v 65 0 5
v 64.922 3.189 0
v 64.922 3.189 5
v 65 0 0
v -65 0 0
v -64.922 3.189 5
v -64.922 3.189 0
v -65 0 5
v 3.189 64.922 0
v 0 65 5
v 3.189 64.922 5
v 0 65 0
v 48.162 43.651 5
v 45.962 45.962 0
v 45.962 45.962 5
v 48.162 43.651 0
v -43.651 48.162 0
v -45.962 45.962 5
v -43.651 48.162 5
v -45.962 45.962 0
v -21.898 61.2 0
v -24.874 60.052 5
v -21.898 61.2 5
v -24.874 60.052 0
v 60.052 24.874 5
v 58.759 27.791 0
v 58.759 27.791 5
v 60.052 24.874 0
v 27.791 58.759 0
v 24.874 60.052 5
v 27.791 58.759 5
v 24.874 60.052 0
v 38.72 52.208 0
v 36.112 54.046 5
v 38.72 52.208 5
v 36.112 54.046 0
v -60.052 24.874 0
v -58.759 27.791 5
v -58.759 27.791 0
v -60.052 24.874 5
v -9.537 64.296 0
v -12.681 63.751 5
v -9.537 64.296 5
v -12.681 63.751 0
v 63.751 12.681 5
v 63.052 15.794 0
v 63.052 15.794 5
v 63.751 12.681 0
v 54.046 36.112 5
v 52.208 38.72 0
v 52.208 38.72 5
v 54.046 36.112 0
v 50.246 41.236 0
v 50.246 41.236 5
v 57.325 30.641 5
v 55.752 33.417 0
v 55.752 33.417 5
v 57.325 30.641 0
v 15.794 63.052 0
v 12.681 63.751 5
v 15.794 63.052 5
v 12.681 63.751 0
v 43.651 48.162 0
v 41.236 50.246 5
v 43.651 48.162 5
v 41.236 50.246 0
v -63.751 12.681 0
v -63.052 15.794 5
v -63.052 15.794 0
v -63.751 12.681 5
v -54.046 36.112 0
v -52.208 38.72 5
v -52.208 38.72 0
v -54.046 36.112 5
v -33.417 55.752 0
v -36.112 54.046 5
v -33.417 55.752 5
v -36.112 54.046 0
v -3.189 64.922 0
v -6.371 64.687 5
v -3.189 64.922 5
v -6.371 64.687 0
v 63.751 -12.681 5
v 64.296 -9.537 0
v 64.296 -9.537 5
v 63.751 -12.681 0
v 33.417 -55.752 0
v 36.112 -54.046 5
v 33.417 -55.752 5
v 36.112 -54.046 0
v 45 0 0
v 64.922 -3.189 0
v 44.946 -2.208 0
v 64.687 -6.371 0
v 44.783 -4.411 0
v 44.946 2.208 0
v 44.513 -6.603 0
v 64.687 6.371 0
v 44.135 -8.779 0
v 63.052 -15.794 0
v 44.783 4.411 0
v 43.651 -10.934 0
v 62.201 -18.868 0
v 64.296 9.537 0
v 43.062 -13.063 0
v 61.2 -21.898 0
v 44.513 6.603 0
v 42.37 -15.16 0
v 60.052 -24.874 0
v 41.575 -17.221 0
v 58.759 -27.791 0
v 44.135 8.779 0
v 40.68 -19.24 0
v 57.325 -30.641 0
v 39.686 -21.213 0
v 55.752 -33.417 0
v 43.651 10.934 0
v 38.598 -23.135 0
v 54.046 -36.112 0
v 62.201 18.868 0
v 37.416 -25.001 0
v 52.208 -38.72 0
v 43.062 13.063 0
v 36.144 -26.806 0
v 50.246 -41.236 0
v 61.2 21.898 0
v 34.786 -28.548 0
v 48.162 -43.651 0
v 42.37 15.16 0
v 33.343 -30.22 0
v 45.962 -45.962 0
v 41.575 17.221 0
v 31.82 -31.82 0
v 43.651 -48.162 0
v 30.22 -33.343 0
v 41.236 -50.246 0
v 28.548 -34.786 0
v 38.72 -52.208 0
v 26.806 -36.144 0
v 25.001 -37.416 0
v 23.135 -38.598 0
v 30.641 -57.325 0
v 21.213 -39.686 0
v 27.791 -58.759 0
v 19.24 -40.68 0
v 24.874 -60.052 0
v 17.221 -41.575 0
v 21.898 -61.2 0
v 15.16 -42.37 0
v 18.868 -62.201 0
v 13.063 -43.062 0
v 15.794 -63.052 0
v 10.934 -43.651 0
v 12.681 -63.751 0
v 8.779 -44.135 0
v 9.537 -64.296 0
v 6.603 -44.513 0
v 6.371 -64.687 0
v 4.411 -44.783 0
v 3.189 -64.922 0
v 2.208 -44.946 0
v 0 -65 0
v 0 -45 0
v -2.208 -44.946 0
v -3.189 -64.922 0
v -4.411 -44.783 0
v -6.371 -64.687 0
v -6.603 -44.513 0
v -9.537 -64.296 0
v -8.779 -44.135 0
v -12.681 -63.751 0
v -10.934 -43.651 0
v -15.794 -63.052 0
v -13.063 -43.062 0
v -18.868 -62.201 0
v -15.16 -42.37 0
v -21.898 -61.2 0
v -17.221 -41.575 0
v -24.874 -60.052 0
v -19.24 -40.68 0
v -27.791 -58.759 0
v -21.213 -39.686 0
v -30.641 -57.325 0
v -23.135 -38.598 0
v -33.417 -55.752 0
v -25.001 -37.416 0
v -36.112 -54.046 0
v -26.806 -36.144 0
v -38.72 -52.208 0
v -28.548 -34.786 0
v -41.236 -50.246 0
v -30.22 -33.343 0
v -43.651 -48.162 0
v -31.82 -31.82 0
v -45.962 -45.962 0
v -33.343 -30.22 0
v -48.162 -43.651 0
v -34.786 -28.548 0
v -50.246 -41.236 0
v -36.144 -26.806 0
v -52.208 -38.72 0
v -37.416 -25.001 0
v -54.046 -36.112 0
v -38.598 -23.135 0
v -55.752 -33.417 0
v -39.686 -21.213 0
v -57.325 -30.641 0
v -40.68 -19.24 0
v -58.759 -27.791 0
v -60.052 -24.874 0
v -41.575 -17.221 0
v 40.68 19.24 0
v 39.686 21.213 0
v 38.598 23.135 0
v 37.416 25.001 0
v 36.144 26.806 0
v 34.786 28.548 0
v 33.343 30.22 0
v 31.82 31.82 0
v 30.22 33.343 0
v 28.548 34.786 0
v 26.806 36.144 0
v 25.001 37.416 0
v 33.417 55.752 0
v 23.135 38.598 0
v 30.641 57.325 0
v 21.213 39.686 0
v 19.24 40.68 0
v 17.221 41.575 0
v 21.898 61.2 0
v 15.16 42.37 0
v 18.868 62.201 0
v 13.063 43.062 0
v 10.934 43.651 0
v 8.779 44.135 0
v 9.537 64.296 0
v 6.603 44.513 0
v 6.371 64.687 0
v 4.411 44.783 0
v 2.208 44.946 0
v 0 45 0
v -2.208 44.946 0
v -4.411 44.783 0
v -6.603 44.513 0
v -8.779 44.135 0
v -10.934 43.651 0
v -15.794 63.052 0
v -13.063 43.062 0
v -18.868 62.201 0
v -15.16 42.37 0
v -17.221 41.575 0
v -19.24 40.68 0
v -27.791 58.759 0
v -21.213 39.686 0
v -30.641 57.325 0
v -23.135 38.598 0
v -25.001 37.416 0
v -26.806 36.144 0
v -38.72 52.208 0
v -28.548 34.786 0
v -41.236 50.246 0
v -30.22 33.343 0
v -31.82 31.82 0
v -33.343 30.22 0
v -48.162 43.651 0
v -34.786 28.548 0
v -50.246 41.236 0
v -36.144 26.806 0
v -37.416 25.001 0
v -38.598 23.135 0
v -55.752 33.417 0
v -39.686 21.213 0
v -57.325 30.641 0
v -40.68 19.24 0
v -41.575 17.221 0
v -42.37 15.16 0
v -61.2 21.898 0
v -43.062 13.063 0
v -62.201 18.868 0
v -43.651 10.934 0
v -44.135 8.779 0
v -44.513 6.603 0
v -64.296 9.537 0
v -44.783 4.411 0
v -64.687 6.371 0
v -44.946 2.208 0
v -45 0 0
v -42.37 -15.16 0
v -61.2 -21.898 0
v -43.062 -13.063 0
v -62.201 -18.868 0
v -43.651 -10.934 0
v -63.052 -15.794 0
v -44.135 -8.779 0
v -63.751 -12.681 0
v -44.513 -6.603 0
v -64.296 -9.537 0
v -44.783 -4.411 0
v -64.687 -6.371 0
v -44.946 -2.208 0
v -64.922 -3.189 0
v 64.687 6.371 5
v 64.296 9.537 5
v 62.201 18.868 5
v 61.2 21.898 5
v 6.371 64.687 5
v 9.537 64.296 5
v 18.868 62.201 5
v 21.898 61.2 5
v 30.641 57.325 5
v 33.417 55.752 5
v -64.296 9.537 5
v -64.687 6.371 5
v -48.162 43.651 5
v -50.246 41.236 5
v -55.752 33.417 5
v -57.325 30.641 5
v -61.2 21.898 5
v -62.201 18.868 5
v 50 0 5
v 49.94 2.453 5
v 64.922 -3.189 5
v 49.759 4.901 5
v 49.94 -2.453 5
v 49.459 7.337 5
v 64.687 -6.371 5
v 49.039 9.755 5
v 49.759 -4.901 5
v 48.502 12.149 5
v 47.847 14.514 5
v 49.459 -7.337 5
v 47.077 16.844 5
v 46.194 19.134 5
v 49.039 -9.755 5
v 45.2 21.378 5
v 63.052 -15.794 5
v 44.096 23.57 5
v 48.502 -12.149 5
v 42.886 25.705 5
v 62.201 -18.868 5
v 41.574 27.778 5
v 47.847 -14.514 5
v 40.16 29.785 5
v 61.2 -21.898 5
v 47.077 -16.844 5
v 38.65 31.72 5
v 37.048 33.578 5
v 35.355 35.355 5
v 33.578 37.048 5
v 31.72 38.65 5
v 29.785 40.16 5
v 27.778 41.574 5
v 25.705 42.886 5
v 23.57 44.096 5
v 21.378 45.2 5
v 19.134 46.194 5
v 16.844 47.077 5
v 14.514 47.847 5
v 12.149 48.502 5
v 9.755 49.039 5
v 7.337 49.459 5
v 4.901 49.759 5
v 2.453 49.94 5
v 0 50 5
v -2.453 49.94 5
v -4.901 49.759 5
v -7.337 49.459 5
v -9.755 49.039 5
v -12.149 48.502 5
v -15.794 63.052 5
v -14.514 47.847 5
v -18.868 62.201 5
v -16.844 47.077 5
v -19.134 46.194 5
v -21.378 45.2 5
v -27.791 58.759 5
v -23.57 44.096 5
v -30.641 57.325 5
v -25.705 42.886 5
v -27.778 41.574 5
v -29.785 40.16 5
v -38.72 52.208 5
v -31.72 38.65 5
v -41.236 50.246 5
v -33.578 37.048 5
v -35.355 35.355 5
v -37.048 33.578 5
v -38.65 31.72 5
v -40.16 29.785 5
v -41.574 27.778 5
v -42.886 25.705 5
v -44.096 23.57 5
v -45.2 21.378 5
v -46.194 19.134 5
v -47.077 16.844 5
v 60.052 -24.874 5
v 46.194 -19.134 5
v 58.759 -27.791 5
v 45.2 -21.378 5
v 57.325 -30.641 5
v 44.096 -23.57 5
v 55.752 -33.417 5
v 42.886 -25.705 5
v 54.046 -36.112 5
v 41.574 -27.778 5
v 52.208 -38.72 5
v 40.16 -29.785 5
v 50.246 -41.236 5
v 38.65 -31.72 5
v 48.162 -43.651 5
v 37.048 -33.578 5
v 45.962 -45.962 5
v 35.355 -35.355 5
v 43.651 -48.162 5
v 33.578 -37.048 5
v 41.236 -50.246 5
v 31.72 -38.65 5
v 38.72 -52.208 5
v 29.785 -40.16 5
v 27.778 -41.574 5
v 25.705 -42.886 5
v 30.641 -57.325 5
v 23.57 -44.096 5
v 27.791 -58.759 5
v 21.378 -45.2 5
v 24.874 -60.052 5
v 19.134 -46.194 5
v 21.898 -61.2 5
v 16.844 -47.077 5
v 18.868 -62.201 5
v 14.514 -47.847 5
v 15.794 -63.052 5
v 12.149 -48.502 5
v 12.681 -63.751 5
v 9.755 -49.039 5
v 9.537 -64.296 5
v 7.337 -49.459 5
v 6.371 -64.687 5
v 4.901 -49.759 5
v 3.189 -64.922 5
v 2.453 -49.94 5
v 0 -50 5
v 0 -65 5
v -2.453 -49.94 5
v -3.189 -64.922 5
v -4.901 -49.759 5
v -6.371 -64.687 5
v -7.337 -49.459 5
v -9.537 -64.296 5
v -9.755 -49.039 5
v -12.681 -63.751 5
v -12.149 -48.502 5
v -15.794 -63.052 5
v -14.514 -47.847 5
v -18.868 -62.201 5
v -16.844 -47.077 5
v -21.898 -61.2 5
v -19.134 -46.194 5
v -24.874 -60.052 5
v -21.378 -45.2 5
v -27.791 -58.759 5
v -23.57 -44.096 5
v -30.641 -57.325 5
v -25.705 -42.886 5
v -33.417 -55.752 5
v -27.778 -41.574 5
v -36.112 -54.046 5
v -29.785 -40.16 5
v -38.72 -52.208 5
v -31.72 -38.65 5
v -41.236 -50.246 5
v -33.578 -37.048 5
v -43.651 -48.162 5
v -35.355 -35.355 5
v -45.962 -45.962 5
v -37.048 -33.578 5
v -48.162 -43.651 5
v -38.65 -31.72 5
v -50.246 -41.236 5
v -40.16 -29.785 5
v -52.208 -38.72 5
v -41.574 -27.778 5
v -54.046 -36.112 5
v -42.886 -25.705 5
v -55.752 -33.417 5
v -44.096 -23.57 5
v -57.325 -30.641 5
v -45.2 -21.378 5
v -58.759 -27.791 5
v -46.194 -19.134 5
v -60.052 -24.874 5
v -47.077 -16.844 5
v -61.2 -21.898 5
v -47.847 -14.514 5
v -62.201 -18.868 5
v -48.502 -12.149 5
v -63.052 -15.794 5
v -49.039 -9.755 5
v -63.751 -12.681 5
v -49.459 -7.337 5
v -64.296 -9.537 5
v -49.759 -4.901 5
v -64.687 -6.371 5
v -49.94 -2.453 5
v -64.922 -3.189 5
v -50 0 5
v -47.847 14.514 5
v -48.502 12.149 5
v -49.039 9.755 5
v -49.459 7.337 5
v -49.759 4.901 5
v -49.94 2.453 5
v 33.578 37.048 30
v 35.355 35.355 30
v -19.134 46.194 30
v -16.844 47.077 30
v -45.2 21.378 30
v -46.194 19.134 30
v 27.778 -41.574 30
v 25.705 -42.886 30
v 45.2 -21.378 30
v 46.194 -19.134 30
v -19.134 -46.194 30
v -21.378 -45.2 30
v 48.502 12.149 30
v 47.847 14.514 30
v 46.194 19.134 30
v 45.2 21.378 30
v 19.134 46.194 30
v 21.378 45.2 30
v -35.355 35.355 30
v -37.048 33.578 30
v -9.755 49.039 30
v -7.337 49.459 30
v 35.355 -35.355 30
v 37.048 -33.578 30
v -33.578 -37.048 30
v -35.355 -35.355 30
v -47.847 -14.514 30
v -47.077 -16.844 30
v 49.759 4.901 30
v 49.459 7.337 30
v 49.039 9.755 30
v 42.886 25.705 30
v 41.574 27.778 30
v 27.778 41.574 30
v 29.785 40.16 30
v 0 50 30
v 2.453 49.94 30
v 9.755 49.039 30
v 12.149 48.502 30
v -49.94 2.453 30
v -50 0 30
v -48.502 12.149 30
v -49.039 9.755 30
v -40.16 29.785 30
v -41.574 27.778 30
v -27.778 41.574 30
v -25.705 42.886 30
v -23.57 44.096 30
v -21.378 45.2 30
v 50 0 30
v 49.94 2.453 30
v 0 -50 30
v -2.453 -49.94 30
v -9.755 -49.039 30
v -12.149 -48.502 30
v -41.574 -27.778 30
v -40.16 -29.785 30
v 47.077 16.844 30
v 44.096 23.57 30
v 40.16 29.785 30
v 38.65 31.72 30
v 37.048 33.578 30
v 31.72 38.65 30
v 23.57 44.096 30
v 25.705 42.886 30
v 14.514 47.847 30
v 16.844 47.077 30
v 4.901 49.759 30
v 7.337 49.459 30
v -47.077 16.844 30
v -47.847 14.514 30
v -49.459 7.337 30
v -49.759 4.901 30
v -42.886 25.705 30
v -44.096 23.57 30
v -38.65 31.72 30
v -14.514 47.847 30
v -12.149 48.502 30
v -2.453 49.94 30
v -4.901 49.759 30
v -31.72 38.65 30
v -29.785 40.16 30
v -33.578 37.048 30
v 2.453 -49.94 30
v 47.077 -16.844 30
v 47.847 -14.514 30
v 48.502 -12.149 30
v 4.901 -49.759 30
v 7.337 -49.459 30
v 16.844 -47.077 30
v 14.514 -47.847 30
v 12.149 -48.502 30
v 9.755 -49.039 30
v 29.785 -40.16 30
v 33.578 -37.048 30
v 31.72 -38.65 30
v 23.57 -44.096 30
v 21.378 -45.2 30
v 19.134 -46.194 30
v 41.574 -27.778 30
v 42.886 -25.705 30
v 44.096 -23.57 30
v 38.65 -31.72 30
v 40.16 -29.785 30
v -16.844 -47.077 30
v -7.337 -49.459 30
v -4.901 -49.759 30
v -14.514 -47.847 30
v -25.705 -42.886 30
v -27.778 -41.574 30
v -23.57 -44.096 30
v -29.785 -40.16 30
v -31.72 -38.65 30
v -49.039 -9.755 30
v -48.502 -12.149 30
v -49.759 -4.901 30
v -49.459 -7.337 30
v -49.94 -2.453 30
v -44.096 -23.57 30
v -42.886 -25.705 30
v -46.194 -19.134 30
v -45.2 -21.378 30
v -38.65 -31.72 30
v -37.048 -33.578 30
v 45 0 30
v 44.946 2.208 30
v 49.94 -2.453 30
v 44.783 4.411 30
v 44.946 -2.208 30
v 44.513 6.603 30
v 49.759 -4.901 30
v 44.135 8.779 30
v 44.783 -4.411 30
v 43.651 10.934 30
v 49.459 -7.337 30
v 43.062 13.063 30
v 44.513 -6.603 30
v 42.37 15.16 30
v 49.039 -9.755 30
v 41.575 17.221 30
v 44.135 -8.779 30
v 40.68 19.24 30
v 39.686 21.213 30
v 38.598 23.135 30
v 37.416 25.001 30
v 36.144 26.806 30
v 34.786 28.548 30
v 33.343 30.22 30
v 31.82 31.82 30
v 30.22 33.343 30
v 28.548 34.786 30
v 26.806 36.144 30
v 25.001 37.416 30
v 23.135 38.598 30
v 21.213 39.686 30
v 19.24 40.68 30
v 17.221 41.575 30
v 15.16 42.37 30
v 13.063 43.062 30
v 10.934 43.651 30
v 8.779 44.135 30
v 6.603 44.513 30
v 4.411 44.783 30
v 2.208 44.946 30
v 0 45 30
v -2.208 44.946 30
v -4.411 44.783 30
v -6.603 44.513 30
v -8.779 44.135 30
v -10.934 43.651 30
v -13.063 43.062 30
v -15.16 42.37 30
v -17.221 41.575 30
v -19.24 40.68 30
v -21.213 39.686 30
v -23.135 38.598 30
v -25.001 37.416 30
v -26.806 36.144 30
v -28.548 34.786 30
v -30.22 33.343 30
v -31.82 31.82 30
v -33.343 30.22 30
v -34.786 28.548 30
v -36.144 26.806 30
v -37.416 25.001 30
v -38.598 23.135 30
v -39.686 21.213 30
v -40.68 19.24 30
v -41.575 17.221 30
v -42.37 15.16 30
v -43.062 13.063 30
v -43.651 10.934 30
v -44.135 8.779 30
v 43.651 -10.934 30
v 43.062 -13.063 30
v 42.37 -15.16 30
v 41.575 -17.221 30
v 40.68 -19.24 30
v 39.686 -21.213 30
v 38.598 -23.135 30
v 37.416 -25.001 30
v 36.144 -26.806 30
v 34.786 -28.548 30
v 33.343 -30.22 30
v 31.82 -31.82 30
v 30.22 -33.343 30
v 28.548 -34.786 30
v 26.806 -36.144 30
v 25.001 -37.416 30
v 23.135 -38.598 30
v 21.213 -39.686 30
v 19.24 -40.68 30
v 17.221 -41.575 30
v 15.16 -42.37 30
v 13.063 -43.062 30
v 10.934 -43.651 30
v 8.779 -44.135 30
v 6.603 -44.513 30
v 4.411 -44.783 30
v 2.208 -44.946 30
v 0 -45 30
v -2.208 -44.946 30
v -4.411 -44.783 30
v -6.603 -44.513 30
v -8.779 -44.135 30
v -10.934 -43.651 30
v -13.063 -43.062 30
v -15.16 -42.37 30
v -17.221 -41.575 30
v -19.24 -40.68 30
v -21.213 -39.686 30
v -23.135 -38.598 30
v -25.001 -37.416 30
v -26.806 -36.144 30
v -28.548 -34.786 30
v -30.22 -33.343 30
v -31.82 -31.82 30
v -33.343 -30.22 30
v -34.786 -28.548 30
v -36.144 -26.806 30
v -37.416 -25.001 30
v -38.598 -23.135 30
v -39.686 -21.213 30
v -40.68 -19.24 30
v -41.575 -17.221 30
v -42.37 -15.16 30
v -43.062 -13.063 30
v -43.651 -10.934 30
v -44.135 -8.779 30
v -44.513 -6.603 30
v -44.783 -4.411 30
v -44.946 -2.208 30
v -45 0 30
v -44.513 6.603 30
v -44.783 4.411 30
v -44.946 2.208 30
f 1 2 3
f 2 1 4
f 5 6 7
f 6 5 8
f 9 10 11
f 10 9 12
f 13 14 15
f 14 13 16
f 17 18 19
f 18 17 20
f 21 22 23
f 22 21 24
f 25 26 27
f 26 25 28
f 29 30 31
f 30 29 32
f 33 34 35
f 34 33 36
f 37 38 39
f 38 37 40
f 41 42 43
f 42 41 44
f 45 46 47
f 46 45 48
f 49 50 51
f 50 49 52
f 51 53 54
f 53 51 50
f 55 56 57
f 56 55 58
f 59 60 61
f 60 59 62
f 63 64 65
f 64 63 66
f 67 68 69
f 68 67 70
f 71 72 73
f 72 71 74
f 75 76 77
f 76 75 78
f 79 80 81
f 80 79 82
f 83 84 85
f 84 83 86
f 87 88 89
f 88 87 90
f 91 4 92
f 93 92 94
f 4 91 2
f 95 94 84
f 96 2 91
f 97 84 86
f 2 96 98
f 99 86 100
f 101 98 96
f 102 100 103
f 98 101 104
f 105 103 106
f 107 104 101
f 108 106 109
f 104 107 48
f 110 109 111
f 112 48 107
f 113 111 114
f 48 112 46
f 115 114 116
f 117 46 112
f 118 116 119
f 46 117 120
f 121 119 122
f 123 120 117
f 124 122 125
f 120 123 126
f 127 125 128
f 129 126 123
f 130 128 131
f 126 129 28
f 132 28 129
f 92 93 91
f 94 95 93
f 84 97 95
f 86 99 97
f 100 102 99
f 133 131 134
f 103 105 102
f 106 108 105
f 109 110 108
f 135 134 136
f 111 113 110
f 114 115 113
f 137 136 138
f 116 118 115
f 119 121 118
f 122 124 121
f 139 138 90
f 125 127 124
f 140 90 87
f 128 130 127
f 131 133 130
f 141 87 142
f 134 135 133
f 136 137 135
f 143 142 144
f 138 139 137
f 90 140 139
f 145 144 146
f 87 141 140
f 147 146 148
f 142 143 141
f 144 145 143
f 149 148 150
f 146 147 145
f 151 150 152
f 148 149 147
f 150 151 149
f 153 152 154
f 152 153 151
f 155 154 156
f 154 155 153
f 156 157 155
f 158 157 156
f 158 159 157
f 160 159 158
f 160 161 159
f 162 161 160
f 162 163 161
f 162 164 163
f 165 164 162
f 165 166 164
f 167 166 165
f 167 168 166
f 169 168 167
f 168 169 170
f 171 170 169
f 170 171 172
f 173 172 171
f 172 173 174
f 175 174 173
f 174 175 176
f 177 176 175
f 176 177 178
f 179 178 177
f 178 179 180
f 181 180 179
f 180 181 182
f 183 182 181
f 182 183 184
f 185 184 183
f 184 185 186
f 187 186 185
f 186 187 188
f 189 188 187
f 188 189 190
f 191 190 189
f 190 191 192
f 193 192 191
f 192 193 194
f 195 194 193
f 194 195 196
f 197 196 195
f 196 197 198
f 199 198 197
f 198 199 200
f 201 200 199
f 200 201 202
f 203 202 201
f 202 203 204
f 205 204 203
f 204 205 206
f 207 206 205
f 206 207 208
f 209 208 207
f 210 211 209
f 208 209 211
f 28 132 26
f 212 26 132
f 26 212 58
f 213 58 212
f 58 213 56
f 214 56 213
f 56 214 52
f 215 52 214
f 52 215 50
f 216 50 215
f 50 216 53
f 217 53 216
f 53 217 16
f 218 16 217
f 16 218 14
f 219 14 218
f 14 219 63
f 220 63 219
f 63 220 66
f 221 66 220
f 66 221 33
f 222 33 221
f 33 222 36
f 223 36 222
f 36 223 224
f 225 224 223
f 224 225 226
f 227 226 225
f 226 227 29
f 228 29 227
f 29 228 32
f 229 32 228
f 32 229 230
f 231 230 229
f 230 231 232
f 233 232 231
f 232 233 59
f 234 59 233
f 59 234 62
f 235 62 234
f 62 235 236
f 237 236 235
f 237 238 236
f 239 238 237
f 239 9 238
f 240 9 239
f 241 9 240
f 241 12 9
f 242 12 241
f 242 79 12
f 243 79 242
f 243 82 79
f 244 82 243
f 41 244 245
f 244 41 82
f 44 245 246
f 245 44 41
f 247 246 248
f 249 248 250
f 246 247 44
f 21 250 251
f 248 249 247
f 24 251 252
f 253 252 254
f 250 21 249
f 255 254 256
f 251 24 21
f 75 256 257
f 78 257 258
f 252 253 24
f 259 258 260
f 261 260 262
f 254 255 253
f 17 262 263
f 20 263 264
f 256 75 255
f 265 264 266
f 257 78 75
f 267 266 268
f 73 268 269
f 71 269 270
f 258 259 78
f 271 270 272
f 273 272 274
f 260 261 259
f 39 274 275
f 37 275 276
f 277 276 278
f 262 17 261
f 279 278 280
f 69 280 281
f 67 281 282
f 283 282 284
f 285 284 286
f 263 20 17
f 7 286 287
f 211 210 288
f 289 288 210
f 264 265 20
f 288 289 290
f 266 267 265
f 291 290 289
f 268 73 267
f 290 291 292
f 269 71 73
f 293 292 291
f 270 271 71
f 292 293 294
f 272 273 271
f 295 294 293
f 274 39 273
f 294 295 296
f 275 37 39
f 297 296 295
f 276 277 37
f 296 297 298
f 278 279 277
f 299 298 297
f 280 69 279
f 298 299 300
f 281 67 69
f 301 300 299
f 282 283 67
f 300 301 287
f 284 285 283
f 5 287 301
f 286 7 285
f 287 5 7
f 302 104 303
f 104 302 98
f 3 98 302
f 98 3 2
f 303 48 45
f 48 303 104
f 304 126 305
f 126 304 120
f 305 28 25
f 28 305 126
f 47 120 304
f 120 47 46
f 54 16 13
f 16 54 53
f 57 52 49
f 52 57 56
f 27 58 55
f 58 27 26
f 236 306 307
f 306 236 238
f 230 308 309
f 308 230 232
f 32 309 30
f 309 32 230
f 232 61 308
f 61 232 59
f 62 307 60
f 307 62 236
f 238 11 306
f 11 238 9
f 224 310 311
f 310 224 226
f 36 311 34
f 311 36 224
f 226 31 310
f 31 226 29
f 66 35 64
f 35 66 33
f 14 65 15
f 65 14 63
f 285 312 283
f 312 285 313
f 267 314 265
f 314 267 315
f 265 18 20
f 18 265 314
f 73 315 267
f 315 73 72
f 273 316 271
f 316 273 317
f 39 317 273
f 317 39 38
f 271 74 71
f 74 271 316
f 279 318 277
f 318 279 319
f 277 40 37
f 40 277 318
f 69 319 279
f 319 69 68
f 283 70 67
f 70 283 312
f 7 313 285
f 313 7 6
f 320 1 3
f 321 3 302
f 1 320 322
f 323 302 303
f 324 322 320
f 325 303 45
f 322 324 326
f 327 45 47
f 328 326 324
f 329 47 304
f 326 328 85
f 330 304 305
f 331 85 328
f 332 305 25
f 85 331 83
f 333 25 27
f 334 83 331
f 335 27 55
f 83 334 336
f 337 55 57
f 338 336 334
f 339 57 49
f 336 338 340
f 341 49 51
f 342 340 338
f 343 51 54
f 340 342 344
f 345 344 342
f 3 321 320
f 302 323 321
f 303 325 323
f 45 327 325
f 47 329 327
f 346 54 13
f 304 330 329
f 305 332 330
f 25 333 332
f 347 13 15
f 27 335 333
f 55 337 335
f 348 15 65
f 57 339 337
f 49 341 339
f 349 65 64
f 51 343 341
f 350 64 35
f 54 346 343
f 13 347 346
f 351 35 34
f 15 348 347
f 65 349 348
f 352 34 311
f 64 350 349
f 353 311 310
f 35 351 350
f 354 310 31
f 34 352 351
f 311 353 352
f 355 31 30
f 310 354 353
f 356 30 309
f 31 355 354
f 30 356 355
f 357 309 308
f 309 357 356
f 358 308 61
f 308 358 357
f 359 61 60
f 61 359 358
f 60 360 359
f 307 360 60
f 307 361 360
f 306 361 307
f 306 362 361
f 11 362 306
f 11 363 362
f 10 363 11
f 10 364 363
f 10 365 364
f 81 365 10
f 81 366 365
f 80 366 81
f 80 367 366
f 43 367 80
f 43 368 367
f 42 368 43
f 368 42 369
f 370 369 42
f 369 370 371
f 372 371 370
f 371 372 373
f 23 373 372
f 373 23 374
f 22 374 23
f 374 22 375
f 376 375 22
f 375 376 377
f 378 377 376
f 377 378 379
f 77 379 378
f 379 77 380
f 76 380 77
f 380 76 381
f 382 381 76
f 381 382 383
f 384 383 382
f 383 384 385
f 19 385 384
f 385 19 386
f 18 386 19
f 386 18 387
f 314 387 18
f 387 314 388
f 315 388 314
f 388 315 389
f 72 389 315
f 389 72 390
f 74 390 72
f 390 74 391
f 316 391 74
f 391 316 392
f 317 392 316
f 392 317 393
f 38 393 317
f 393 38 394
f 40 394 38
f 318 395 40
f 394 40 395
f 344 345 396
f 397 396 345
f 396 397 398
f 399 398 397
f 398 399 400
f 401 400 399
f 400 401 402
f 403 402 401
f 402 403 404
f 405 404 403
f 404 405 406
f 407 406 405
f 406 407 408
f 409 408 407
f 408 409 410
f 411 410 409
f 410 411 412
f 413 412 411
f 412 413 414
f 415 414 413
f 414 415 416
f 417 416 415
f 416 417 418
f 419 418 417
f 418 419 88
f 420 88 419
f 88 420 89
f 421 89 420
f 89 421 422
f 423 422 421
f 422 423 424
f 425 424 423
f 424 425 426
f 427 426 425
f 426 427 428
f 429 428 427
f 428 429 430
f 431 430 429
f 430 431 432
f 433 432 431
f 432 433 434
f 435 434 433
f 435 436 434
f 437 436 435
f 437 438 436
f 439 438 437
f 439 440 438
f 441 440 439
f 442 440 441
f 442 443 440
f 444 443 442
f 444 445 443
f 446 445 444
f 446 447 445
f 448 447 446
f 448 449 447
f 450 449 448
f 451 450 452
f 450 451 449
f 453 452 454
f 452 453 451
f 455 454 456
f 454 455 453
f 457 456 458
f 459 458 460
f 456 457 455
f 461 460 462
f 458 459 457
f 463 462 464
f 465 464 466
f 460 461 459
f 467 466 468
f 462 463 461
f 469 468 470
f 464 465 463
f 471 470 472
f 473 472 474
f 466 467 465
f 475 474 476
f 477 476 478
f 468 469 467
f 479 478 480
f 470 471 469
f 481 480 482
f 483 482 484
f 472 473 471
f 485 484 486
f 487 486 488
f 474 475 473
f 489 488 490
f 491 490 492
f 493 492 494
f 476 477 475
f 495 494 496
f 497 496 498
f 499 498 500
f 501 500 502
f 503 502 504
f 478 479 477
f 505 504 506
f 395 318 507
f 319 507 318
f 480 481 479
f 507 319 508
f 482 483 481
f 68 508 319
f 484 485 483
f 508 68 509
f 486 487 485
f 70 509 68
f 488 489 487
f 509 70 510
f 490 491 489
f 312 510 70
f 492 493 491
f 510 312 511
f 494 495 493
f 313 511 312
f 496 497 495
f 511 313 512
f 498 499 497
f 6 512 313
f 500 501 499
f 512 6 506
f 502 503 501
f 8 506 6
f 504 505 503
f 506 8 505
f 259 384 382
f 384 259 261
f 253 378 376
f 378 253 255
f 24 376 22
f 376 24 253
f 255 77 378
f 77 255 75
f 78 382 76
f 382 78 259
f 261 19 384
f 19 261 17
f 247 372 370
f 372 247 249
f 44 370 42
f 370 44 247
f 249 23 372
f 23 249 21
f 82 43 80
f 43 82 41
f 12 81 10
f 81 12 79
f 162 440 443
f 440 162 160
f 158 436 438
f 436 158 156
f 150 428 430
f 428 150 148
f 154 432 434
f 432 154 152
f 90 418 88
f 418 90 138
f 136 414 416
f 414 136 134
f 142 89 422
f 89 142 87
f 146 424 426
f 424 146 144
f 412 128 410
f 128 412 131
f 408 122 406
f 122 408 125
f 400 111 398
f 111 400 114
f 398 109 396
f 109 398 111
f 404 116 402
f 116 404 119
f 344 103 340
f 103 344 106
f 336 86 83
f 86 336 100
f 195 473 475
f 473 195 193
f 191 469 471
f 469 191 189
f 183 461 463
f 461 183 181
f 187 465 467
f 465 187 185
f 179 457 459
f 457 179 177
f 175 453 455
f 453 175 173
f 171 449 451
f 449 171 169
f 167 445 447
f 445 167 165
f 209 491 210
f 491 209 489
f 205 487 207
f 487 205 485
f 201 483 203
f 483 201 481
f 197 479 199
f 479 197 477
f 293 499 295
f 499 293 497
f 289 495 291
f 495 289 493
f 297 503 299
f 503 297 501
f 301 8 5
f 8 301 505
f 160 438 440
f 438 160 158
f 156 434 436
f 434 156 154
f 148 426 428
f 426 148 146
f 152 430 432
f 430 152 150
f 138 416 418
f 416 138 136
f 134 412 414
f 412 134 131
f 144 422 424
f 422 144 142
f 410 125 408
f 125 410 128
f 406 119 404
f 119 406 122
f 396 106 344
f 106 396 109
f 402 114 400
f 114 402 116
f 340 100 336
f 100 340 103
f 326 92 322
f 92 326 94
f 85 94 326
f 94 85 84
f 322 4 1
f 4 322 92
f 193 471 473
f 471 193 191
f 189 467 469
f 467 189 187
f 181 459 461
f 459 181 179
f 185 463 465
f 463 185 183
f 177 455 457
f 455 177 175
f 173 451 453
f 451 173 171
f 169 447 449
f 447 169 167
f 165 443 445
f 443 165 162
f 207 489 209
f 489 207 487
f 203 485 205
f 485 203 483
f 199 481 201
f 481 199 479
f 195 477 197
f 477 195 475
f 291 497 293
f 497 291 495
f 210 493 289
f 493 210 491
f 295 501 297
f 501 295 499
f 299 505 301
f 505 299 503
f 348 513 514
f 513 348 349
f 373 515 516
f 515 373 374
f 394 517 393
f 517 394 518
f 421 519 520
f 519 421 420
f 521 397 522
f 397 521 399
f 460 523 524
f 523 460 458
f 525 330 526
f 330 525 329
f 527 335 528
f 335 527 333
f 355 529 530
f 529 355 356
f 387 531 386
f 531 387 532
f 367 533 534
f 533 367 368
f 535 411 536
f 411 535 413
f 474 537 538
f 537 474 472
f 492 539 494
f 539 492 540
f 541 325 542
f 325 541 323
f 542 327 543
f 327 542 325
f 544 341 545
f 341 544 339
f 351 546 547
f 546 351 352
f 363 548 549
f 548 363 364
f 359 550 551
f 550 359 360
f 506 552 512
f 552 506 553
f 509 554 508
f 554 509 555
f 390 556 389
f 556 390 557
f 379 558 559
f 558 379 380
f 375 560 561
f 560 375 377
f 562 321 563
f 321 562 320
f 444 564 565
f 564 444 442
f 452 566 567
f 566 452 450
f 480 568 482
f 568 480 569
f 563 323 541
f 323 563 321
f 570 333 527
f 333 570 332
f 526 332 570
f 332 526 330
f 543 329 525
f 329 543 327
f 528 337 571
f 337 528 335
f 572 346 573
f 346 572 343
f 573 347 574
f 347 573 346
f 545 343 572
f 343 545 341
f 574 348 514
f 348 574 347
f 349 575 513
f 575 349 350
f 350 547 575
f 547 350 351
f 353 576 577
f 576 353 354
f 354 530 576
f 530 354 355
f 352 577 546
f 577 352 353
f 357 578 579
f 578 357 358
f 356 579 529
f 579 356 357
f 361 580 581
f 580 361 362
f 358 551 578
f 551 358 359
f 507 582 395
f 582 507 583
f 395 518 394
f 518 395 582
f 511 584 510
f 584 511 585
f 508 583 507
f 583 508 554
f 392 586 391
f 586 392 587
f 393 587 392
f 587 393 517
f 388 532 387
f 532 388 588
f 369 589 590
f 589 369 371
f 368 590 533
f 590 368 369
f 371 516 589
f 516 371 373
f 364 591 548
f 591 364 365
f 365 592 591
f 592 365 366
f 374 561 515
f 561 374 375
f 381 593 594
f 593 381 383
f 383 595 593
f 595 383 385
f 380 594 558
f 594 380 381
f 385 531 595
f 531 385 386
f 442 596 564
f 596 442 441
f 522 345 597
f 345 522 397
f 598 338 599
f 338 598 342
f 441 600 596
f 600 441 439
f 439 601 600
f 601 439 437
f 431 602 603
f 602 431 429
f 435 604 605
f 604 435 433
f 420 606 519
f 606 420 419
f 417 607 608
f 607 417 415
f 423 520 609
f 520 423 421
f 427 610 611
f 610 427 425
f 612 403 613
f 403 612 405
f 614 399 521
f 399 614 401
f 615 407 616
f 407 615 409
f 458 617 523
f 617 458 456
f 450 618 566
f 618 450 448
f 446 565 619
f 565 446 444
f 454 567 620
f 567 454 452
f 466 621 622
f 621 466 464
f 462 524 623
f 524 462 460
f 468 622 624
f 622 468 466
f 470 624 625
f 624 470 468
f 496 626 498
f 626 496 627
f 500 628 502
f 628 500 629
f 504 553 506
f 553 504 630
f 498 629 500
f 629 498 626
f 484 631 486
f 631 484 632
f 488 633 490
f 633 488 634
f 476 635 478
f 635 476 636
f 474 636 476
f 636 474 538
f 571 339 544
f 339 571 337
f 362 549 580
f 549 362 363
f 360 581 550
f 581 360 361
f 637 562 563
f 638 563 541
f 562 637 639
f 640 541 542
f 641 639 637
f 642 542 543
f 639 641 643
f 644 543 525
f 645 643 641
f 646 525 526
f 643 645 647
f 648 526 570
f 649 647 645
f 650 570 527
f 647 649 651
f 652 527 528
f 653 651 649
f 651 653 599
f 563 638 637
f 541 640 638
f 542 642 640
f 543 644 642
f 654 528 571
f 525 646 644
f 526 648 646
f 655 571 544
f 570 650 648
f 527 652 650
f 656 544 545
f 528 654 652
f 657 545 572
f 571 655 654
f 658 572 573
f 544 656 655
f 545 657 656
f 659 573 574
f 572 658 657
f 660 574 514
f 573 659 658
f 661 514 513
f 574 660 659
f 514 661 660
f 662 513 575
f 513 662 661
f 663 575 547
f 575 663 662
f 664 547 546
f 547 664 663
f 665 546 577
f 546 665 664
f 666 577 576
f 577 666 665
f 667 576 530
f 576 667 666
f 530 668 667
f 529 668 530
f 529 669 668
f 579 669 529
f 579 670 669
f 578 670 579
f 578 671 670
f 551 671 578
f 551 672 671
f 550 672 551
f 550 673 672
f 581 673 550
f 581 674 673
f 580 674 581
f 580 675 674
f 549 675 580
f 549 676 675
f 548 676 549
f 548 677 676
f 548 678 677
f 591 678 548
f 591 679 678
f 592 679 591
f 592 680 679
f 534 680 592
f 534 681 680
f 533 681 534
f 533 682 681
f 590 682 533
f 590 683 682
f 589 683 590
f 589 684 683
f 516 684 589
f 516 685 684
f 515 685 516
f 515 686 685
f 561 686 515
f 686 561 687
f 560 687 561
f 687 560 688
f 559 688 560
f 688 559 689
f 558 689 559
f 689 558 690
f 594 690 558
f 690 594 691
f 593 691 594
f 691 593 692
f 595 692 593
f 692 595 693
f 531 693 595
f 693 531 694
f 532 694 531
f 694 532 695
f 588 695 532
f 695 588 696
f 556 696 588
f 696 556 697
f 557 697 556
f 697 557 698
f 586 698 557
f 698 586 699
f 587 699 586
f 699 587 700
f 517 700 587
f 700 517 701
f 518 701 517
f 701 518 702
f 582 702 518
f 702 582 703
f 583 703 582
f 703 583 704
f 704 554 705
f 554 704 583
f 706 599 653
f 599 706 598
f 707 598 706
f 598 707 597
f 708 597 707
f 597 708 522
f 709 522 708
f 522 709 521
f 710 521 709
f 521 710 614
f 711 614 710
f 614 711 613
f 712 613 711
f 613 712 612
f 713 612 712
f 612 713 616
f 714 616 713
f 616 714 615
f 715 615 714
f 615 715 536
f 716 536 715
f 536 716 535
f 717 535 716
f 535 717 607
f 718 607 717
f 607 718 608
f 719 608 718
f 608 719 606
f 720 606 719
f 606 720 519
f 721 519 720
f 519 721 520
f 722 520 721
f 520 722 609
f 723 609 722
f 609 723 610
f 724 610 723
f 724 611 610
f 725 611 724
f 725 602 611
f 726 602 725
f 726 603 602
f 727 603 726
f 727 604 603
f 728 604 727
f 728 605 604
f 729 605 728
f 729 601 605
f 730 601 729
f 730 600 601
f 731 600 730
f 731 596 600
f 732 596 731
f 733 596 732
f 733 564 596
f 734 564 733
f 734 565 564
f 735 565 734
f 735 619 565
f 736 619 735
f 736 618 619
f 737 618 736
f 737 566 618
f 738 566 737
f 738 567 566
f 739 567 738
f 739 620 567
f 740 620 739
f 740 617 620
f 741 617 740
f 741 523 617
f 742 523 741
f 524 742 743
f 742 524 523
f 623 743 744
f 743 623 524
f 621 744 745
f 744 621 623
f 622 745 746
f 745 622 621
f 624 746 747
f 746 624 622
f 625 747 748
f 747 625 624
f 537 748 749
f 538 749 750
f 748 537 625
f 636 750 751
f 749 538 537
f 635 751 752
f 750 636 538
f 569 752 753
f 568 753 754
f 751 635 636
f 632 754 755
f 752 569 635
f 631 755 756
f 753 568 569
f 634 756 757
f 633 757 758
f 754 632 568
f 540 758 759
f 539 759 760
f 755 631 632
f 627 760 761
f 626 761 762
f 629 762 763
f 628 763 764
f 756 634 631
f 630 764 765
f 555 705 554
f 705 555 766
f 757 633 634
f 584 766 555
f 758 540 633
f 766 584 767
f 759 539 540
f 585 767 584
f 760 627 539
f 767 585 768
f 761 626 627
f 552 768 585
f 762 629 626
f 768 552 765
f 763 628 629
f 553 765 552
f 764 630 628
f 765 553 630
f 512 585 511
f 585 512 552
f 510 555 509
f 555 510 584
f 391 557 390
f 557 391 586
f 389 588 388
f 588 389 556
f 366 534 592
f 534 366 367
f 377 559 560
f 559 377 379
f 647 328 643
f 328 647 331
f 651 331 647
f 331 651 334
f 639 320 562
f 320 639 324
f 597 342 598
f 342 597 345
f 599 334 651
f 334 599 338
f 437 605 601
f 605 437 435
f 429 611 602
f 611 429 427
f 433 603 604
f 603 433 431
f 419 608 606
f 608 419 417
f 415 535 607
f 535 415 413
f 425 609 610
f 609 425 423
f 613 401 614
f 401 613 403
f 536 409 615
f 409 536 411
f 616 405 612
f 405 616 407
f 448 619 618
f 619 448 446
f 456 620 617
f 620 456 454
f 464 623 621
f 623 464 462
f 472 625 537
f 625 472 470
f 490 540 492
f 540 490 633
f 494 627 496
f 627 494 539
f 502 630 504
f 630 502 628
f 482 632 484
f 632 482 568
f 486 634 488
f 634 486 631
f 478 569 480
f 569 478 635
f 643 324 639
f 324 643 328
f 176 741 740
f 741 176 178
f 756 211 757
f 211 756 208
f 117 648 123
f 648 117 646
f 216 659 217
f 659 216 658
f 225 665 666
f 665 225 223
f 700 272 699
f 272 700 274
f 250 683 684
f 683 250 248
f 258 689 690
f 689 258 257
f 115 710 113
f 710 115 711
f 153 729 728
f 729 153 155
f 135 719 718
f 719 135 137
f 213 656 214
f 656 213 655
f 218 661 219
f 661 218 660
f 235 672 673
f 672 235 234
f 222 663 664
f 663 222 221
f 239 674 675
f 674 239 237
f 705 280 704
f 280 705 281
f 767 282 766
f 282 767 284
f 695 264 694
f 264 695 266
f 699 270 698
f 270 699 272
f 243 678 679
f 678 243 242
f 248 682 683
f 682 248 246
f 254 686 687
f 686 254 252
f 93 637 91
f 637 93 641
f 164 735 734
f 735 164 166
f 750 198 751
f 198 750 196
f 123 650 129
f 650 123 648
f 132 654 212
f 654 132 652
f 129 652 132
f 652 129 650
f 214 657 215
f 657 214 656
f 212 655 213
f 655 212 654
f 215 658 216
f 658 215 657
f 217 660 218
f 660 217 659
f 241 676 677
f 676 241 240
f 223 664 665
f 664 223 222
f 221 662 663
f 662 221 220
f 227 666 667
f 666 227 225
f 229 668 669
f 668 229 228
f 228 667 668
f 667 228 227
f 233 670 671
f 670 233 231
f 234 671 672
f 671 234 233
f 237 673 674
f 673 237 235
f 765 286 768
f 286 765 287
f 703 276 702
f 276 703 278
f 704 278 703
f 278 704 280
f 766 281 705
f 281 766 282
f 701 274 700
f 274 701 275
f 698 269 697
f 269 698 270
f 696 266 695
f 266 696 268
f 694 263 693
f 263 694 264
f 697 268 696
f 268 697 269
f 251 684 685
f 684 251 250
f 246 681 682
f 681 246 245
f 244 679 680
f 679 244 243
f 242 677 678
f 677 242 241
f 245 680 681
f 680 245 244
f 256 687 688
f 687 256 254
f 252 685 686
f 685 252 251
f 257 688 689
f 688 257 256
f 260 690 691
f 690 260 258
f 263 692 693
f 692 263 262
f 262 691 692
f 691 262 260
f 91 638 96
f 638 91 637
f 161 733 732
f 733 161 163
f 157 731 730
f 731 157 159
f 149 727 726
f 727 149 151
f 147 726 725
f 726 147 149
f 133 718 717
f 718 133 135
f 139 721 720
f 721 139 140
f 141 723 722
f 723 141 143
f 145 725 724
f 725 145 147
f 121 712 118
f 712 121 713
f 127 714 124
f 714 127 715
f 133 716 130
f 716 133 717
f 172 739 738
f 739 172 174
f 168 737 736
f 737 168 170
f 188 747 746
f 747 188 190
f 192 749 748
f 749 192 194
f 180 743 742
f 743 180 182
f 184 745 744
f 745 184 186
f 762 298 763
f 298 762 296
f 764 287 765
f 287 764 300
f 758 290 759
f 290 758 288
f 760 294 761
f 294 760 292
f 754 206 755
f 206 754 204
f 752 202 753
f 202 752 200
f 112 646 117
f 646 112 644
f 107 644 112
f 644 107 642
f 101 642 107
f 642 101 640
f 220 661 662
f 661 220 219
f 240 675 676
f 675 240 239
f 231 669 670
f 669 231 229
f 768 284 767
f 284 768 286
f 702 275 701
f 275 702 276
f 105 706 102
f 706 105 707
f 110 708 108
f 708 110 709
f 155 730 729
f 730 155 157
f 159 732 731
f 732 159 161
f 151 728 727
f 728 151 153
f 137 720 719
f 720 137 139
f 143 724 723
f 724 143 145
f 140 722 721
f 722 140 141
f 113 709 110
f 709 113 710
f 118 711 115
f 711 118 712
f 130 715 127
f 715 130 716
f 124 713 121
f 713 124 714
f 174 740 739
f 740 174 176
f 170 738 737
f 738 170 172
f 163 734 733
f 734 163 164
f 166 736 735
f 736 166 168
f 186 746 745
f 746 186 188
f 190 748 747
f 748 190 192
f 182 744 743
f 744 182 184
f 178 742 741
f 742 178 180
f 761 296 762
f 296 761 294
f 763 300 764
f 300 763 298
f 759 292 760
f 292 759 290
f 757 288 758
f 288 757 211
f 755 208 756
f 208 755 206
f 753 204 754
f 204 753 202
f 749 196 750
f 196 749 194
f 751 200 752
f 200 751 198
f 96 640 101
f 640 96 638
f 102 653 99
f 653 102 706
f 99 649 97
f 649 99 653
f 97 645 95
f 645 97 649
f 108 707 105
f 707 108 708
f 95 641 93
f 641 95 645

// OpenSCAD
/**
 * Launch Platform for Toad90 Quads (and probably others)
 *
 * by Hendrik Busch, 2018 (https://github.com/hmbusch)
 *
 * A simple, not-angled launching platform to put the Toad90 
 * onto when starting. This provides an even base for the quad
 * when it has a battery mounted below.
 */
$fn = 128;

union() {
    difference() {
        union() {
            cylinder(d = 130, h = 5);
            cylinder(d = 100, h = 30);
        }
        translate([0, 0, -0.01]) cylinder(d = 90, h = 30.02);
    }
}
